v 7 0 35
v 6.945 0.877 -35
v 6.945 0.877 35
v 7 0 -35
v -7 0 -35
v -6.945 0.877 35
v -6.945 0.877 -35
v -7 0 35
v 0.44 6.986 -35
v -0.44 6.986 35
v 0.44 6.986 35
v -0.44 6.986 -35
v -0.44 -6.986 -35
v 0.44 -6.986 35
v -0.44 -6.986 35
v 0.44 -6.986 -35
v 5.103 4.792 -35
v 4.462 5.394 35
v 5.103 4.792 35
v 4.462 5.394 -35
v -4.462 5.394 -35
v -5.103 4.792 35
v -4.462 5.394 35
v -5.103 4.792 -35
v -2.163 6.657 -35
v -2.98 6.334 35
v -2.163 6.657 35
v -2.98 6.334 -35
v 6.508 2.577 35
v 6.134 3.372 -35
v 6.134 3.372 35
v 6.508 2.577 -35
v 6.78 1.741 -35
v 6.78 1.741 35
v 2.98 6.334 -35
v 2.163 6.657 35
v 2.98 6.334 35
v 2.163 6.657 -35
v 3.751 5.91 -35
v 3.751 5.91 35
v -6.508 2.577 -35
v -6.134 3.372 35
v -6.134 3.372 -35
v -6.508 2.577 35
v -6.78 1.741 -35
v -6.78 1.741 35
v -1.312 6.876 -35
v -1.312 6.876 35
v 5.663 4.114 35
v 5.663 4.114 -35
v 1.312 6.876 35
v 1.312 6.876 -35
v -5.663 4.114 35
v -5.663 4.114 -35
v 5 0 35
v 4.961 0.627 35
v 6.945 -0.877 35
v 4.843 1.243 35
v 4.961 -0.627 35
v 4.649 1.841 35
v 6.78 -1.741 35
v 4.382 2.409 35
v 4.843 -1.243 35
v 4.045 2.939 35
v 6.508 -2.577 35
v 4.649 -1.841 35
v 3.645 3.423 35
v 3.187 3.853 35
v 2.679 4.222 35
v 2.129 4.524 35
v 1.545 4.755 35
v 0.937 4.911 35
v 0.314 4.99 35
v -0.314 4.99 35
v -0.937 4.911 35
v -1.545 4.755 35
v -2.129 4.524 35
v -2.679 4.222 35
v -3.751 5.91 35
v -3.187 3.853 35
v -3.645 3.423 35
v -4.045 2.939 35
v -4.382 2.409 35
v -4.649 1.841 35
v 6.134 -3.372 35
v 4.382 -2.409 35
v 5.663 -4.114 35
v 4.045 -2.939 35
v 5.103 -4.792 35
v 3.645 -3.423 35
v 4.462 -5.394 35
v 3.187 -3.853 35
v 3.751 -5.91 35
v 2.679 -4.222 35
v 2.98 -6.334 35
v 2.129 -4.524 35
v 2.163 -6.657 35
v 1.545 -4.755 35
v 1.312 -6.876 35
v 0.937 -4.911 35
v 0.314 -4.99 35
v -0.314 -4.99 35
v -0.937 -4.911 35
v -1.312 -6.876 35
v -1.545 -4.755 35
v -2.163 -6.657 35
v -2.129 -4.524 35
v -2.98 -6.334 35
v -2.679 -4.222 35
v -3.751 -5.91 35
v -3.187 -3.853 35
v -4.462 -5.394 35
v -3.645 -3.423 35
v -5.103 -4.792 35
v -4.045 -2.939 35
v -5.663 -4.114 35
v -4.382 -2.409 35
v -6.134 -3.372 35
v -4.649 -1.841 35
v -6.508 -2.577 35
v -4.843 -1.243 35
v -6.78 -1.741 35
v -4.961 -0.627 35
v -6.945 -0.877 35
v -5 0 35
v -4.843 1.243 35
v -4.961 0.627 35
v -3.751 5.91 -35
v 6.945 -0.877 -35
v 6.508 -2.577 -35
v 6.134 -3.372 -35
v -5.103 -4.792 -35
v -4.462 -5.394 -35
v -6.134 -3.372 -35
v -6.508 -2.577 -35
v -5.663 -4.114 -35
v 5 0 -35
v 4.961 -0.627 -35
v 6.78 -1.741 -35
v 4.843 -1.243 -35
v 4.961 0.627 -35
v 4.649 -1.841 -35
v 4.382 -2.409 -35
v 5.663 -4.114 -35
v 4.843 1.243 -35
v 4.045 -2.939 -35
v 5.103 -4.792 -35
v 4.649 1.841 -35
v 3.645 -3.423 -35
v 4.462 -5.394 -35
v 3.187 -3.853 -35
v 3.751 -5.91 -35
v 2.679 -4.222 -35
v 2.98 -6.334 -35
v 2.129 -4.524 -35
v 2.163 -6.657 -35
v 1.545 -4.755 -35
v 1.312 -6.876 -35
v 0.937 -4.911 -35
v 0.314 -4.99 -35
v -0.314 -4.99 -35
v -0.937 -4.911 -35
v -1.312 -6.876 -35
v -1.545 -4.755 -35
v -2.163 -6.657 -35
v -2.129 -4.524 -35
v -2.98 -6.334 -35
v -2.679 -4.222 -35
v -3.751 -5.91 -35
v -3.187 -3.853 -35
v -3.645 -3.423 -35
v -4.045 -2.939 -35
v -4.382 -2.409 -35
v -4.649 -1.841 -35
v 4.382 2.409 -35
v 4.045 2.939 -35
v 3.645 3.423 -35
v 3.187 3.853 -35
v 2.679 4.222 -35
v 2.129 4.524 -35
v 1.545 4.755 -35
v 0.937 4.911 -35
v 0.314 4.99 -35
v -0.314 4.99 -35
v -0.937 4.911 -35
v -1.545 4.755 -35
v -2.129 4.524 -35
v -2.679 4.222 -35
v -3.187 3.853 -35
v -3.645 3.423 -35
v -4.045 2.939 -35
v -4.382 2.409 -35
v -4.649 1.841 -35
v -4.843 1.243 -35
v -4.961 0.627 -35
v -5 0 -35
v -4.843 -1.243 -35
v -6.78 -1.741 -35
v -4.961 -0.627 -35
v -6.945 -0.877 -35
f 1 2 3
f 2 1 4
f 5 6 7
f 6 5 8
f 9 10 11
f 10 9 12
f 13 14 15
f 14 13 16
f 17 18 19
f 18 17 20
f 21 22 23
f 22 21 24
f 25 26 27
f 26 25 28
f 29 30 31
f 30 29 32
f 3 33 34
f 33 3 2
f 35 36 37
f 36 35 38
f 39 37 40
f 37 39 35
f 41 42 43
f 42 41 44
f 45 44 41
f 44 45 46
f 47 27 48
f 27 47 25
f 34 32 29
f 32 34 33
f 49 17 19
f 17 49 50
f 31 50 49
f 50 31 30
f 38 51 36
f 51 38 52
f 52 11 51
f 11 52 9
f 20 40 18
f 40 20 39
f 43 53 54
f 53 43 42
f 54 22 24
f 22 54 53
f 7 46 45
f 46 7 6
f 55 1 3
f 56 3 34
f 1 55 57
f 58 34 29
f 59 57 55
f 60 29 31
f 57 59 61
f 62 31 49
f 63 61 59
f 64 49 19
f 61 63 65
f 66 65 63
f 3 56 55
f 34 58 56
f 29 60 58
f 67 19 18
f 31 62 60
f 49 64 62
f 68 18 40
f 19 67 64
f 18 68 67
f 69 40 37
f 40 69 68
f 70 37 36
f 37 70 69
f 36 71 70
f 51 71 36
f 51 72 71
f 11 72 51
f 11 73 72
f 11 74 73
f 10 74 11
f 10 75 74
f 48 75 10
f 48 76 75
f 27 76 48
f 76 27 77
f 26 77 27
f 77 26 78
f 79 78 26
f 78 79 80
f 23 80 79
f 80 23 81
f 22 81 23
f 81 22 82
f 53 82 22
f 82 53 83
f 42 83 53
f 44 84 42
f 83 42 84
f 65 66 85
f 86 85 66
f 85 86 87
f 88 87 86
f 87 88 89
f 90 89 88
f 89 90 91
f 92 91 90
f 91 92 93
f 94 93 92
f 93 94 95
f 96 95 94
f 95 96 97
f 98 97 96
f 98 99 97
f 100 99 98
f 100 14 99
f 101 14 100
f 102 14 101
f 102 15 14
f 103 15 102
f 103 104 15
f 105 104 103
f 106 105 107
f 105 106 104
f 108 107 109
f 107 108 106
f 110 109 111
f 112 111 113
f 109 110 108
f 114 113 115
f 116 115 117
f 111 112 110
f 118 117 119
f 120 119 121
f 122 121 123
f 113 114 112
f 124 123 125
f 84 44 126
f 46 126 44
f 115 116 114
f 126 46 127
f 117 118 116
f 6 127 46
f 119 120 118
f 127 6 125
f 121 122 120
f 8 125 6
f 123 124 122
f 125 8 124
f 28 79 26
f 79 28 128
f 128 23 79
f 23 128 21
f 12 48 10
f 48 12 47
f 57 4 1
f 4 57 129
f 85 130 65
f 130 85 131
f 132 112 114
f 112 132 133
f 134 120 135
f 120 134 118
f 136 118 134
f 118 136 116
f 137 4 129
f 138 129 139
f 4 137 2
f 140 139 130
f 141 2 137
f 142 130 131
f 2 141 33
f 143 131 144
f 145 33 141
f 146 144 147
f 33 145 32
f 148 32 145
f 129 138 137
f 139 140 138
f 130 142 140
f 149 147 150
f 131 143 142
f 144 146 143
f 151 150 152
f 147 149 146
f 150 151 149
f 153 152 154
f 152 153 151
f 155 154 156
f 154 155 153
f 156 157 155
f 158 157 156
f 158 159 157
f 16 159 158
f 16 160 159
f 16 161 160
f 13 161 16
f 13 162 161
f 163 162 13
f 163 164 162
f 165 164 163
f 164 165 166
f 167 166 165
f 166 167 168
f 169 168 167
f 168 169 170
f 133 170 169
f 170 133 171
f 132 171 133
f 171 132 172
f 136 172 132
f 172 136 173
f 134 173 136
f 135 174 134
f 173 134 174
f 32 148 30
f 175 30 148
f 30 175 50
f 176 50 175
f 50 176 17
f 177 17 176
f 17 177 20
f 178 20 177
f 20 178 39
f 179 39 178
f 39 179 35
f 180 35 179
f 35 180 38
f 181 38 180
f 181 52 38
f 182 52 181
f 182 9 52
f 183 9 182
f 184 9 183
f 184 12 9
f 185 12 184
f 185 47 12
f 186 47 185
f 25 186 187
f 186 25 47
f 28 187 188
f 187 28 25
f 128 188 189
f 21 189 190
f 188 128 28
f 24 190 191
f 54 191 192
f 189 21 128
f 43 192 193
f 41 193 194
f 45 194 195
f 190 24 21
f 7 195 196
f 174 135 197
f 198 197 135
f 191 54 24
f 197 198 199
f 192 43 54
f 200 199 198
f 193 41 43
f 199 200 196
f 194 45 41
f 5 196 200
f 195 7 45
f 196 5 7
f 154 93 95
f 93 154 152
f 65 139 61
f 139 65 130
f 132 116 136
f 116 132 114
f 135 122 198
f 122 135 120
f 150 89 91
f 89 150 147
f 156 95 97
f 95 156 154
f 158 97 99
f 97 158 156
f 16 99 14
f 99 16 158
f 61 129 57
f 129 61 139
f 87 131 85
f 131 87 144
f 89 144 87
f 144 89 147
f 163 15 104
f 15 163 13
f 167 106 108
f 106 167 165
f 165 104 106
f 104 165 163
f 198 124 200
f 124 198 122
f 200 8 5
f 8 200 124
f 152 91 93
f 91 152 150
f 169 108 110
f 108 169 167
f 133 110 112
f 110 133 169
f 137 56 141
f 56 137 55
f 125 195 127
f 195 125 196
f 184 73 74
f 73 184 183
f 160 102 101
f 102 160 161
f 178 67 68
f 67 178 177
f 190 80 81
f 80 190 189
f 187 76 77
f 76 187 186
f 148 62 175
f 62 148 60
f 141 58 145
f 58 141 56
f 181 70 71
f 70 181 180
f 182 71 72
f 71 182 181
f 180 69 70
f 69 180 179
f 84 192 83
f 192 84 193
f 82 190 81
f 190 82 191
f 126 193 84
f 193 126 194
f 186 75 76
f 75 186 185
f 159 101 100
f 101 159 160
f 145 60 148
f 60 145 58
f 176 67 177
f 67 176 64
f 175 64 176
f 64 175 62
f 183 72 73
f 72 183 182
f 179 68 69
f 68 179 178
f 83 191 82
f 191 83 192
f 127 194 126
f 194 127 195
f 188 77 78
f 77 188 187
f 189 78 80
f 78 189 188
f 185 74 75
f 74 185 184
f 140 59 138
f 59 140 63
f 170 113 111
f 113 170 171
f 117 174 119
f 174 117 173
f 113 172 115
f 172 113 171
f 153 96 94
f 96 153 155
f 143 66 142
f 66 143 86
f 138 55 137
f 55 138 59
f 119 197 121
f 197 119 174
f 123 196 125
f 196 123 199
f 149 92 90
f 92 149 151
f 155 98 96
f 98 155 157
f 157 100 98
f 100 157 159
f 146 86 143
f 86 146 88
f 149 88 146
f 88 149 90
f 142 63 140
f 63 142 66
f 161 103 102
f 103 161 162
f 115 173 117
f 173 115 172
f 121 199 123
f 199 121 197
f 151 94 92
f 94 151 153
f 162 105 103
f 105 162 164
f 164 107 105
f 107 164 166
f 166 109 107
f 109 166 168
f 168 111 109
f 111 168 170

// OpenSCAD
$fn = 50;


difference() {
	union() {
		translate(v = [0, 0, -35.0000000000]) {
			cylinder(h = 70, r = 7.0000000000);
		}
	}
	union() {
		translate(v = [0, 0, -100.0000000000]) {
			cylinder(h = 200, r = 5);
		}
	}
}
